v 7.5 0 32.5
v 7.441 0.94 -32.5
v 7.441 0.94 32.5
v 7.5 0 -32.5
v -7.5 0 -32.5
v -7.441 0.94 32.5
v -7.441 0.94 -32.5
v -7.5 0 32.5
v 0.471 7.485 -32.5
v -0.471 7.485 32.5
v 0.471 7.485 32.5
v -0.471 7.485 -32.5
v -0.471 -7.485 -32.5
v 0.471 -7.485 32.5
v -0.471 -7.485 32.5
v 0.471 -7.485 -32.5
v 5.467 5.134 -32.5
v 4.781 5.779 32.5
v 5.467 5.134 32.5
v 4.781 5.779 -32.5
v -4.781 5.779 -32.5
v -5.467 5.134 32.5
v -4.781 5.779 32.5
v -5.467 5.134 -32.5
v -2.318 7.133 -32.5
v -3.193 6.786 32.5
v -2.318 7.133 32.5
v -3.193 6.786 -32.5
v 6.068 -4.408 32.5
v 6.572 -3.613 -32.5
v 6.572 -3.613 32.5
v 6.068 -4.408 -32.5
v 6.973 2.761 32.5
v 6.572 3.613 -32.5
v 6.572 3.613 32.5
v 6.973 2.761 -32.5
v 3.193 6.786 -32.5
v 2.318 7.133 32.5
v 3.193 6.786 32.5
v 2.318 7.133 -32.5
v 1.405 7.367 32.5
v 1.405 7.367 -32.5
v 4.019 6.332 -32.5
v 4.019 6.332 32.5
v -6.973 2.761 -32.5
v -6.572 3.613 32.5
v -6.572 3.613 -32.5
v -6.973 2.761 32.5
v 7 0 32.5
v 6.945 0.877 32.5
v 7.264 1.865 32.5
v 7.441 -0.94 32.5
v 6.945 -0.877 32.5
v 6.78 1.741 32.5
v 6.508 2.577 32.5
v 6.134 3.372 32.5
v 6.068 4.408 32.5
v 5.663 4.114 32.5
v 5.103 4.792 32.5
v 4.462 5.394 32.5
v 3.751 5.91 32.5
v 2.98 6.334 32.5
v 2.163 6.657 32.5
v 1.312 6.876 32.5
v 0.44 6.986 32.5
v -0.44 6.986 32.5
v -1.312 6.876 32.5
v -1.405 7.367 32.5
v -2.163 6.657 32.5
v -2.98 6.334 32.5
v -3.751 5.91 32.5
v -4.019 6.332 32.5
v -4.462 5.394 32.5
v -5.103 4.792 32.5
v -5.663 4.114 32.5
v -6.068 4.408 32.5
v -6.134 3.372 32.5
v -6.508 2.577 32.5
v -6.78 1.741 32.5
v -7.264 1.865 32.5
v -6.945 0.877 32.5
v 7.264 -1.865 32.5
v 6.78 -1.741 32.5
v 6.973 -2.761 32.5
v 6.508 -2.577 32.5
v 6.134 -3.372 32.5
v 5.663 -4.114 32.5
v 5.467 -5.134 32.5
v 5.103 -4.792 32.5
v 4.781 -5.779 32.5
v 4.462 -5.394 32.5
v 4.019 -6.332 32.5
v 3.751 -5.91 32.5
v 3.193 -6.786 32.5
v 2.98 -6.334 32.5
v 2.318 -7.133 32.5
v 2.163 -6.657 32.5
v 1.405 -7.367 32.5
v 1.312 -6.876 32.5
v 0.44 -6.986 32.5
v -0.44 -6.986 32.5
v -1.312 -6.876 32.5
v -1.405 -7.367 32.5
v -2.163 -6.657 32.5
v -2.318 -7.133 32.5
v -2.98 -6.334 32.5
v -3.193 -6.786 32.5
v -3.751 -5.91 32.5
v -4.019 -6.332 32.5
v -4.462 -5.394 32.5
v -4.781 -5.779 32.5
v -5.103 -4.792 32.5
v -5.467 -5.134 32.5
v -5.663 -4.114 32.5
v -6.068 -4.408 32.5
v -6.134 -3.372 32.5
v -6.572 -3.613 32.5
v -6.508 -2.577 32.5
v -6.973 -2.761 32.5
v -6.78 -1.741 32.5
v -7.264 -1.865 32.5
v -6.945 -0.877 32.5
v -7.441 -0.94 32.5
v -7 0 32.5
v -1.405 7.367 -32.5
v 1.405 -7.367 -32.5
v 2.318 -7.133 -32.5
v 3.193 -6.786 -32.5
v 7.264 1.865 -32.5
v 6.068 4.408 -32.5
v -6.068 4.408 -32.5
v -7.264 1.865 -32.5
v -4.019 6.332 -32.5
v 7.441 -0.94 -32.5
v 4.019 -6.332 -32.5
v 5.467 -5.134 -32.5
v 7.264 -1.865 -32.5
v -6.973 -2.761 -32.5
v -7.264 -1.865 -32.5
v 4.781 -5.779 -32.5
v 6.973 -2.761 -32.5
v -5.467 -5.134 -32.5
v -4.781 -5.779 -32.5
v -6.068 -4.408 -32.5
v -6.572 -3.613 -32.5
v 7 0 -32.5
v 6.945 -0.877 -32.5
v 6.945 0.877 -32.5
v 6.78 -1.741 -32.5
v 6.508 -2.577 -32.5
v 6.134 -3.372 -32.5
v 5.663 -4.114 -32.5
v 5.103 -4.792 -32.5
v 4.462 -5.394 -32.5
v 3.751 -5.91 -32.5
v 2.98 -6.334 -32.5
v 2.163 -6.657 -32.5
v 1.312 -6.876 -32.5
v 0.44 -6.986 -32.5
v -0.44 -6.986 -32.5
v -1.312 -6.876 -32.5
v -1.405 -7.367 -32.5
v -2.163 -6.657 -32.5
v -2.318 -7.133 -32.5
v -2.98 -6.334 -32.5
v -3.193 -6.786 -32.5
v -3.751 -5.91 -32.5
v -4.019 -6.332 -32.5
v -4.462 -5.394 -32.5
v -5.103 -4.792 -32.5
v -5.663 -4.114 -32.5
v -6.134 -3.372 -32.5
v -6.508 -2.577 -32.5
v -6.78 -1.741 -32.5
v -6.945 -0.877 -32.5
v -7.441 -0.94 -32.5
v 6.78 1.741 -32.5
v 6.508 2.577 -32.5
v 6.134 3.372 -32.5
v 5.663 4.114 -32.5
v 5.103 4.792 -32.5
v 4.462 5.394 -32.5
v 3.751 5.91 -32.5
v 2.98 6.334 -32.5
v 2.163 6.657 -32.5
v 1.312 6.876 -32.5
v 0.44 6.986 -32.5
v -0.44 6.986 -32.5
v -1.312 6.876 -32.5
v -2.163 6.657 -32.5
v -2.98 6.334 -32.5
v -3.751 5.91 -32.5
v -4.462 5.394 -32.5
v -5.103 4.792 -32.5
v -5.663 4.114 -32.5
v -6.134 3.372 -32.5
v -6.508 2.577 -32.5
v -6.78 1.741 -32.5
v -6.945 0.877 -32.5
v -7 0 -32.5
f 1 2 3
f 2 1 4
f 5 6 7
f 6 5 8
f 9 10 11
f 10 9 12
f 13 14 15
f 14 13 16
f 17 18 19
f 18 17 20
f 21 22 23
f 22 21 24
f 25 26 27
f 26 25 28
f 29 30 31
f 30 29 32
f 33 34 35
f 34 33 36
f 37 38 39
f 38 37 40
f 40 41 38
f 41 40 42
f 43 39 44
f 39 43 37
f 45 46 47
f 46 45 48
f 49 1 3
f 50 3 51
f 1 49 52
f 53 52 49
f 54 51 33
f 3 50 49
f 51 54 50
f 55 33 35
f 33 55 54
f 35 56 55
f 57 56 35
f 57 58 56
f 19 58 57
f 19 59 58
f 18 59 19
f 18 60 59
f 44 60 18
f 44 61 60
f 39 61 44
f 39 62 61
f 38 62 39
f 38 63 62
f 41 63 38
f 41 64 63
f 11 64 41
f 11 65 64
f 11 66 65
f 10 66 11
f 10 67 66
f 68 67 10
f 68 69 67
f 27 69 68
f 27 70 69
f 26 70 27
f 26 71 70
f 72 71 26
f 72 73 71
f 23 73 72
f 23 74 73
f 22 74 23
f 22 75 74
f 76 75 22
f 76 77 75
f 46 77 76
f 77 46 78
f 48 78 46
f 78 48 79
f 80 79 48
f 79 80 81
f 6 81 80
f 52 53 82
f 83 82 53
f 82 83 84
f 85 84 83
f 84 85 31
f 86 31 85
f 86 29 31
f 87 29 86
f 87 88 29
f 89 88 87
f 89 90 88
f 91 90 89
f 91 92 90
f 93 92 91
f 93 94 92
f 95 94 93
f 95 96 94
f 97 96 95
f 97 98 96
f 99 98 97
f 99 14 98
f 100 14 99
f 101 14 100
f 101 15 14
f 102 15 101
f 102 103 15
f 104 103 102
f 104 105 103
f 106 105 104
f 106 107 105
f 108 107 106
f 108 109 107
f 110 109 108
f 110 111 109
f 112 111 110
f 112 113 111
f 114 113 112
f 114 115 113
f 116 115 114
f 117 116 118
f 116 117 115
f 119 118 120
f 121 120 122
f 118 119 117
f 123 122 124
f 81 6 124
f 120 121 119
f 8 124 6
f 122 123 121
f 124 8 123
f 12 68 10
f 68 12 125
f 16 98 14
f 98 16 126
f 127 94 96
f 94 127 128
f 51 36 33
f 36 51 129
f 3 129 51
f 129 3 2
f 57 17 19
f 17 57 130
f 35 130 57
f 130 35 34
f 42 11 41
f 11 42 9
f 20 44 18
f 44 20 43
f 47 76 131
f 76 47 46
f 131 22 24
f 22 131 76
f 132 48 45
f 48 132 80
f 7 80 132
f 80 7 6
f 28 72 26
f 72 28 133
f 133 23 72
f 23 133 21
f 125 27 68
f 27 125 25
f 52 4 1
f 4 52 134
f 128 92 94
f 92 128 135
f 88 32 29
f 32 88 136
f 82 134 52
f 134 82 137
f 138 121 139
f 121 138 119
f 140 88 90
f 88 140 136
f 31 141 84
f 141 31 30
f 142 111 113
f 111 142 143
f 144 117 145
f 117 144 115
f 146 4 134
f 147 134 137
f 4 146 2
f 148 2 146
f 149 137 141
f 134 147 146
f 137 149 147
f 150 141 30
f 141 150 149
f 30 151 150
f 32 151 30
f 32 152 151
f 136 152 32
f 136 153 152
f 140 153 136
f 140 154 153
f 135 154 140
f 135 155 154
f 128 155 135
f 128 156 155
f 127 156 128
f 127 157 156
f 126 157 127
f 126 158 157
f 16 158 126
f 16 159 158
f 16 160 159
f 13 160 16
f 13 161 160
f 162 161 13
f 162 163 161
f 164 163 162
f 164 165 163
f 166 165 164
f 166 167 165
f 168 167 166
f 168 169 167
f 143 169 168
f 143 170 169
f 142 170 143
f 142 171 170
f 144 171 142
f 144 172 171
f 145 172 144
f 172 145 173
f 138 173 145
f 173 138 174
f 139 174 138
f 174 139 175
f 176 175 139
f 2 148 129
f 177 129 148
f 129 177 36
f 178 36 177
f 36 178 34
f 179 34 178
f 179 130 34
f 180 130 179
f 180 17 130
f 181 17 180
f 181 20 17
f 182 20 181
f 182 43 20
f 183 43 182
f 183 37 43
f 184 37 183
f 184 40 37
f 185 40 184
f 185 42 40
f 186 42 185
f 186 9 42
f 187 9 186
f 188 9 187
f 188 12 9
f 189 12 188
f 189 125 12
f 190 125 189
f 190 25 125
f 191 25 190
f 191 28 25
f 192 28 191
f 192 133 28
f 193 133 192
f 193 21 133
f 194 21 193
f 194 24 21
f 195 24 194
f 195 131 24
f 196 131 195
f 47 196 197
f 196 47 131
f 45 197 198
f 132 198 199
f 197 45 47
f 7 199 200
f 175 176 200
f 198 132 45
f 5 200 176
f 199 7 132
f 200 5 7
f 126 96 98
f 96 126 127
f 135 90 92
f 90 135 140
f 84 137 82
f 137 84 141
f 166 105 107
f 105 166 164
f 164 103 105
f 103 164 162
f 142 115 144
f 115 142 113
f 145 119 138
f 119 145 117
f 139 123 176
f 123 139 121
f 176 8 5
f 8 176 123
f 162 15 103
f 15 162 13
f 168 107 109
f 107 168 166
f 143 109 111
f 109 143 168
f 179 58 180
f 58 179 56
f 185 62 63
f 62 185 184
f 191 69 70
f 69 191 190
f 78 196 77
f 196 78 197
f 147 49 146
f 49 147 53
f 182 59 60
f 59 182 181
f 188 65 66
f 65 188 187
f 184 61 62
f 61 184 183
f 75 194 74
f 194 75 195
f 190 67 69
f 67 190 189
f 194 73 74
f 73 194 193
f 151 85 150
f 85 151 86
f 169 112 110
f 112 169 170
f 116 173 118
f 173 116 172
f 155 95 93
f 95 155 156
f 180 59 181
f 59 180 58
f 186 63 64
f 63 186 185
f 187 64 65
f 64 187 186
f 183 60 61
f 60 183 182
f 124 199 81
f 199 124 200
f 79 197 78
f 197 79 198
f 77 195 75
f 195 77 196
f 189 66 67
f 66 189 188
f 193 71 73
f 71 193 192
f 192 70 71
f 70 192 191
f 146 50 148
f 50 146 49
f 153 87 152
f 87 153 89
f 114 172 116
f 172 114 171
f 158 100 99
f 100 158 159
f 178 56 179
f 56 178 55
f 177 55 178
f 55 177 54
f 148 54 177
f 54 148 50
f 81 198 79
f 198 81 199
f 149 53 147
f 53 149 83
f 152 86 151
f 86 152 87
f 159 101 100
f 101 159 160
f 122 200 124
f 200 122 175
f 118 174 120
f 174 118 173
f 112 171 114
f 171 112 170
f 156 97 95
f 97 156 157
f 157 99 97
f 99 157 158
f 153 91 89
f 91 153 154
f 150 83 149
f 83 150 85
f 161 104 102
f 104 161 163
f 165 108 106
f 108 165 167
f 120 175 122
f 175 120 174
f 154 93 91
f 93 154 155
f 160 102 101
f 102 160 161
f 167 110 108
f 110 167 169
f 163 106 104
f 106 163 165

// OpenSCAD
$fn = 50;


difference() {
	union() {
		translate(v = [0, 0, -32.5000000000]) {
			cylinder(h = 65, r = 7.5000000000);
		}
	}
	union() {
		translate(v = [0, 0, -100.0000000000]) {
			cylinder(h = 200, r = 7);
		}
	}
}
